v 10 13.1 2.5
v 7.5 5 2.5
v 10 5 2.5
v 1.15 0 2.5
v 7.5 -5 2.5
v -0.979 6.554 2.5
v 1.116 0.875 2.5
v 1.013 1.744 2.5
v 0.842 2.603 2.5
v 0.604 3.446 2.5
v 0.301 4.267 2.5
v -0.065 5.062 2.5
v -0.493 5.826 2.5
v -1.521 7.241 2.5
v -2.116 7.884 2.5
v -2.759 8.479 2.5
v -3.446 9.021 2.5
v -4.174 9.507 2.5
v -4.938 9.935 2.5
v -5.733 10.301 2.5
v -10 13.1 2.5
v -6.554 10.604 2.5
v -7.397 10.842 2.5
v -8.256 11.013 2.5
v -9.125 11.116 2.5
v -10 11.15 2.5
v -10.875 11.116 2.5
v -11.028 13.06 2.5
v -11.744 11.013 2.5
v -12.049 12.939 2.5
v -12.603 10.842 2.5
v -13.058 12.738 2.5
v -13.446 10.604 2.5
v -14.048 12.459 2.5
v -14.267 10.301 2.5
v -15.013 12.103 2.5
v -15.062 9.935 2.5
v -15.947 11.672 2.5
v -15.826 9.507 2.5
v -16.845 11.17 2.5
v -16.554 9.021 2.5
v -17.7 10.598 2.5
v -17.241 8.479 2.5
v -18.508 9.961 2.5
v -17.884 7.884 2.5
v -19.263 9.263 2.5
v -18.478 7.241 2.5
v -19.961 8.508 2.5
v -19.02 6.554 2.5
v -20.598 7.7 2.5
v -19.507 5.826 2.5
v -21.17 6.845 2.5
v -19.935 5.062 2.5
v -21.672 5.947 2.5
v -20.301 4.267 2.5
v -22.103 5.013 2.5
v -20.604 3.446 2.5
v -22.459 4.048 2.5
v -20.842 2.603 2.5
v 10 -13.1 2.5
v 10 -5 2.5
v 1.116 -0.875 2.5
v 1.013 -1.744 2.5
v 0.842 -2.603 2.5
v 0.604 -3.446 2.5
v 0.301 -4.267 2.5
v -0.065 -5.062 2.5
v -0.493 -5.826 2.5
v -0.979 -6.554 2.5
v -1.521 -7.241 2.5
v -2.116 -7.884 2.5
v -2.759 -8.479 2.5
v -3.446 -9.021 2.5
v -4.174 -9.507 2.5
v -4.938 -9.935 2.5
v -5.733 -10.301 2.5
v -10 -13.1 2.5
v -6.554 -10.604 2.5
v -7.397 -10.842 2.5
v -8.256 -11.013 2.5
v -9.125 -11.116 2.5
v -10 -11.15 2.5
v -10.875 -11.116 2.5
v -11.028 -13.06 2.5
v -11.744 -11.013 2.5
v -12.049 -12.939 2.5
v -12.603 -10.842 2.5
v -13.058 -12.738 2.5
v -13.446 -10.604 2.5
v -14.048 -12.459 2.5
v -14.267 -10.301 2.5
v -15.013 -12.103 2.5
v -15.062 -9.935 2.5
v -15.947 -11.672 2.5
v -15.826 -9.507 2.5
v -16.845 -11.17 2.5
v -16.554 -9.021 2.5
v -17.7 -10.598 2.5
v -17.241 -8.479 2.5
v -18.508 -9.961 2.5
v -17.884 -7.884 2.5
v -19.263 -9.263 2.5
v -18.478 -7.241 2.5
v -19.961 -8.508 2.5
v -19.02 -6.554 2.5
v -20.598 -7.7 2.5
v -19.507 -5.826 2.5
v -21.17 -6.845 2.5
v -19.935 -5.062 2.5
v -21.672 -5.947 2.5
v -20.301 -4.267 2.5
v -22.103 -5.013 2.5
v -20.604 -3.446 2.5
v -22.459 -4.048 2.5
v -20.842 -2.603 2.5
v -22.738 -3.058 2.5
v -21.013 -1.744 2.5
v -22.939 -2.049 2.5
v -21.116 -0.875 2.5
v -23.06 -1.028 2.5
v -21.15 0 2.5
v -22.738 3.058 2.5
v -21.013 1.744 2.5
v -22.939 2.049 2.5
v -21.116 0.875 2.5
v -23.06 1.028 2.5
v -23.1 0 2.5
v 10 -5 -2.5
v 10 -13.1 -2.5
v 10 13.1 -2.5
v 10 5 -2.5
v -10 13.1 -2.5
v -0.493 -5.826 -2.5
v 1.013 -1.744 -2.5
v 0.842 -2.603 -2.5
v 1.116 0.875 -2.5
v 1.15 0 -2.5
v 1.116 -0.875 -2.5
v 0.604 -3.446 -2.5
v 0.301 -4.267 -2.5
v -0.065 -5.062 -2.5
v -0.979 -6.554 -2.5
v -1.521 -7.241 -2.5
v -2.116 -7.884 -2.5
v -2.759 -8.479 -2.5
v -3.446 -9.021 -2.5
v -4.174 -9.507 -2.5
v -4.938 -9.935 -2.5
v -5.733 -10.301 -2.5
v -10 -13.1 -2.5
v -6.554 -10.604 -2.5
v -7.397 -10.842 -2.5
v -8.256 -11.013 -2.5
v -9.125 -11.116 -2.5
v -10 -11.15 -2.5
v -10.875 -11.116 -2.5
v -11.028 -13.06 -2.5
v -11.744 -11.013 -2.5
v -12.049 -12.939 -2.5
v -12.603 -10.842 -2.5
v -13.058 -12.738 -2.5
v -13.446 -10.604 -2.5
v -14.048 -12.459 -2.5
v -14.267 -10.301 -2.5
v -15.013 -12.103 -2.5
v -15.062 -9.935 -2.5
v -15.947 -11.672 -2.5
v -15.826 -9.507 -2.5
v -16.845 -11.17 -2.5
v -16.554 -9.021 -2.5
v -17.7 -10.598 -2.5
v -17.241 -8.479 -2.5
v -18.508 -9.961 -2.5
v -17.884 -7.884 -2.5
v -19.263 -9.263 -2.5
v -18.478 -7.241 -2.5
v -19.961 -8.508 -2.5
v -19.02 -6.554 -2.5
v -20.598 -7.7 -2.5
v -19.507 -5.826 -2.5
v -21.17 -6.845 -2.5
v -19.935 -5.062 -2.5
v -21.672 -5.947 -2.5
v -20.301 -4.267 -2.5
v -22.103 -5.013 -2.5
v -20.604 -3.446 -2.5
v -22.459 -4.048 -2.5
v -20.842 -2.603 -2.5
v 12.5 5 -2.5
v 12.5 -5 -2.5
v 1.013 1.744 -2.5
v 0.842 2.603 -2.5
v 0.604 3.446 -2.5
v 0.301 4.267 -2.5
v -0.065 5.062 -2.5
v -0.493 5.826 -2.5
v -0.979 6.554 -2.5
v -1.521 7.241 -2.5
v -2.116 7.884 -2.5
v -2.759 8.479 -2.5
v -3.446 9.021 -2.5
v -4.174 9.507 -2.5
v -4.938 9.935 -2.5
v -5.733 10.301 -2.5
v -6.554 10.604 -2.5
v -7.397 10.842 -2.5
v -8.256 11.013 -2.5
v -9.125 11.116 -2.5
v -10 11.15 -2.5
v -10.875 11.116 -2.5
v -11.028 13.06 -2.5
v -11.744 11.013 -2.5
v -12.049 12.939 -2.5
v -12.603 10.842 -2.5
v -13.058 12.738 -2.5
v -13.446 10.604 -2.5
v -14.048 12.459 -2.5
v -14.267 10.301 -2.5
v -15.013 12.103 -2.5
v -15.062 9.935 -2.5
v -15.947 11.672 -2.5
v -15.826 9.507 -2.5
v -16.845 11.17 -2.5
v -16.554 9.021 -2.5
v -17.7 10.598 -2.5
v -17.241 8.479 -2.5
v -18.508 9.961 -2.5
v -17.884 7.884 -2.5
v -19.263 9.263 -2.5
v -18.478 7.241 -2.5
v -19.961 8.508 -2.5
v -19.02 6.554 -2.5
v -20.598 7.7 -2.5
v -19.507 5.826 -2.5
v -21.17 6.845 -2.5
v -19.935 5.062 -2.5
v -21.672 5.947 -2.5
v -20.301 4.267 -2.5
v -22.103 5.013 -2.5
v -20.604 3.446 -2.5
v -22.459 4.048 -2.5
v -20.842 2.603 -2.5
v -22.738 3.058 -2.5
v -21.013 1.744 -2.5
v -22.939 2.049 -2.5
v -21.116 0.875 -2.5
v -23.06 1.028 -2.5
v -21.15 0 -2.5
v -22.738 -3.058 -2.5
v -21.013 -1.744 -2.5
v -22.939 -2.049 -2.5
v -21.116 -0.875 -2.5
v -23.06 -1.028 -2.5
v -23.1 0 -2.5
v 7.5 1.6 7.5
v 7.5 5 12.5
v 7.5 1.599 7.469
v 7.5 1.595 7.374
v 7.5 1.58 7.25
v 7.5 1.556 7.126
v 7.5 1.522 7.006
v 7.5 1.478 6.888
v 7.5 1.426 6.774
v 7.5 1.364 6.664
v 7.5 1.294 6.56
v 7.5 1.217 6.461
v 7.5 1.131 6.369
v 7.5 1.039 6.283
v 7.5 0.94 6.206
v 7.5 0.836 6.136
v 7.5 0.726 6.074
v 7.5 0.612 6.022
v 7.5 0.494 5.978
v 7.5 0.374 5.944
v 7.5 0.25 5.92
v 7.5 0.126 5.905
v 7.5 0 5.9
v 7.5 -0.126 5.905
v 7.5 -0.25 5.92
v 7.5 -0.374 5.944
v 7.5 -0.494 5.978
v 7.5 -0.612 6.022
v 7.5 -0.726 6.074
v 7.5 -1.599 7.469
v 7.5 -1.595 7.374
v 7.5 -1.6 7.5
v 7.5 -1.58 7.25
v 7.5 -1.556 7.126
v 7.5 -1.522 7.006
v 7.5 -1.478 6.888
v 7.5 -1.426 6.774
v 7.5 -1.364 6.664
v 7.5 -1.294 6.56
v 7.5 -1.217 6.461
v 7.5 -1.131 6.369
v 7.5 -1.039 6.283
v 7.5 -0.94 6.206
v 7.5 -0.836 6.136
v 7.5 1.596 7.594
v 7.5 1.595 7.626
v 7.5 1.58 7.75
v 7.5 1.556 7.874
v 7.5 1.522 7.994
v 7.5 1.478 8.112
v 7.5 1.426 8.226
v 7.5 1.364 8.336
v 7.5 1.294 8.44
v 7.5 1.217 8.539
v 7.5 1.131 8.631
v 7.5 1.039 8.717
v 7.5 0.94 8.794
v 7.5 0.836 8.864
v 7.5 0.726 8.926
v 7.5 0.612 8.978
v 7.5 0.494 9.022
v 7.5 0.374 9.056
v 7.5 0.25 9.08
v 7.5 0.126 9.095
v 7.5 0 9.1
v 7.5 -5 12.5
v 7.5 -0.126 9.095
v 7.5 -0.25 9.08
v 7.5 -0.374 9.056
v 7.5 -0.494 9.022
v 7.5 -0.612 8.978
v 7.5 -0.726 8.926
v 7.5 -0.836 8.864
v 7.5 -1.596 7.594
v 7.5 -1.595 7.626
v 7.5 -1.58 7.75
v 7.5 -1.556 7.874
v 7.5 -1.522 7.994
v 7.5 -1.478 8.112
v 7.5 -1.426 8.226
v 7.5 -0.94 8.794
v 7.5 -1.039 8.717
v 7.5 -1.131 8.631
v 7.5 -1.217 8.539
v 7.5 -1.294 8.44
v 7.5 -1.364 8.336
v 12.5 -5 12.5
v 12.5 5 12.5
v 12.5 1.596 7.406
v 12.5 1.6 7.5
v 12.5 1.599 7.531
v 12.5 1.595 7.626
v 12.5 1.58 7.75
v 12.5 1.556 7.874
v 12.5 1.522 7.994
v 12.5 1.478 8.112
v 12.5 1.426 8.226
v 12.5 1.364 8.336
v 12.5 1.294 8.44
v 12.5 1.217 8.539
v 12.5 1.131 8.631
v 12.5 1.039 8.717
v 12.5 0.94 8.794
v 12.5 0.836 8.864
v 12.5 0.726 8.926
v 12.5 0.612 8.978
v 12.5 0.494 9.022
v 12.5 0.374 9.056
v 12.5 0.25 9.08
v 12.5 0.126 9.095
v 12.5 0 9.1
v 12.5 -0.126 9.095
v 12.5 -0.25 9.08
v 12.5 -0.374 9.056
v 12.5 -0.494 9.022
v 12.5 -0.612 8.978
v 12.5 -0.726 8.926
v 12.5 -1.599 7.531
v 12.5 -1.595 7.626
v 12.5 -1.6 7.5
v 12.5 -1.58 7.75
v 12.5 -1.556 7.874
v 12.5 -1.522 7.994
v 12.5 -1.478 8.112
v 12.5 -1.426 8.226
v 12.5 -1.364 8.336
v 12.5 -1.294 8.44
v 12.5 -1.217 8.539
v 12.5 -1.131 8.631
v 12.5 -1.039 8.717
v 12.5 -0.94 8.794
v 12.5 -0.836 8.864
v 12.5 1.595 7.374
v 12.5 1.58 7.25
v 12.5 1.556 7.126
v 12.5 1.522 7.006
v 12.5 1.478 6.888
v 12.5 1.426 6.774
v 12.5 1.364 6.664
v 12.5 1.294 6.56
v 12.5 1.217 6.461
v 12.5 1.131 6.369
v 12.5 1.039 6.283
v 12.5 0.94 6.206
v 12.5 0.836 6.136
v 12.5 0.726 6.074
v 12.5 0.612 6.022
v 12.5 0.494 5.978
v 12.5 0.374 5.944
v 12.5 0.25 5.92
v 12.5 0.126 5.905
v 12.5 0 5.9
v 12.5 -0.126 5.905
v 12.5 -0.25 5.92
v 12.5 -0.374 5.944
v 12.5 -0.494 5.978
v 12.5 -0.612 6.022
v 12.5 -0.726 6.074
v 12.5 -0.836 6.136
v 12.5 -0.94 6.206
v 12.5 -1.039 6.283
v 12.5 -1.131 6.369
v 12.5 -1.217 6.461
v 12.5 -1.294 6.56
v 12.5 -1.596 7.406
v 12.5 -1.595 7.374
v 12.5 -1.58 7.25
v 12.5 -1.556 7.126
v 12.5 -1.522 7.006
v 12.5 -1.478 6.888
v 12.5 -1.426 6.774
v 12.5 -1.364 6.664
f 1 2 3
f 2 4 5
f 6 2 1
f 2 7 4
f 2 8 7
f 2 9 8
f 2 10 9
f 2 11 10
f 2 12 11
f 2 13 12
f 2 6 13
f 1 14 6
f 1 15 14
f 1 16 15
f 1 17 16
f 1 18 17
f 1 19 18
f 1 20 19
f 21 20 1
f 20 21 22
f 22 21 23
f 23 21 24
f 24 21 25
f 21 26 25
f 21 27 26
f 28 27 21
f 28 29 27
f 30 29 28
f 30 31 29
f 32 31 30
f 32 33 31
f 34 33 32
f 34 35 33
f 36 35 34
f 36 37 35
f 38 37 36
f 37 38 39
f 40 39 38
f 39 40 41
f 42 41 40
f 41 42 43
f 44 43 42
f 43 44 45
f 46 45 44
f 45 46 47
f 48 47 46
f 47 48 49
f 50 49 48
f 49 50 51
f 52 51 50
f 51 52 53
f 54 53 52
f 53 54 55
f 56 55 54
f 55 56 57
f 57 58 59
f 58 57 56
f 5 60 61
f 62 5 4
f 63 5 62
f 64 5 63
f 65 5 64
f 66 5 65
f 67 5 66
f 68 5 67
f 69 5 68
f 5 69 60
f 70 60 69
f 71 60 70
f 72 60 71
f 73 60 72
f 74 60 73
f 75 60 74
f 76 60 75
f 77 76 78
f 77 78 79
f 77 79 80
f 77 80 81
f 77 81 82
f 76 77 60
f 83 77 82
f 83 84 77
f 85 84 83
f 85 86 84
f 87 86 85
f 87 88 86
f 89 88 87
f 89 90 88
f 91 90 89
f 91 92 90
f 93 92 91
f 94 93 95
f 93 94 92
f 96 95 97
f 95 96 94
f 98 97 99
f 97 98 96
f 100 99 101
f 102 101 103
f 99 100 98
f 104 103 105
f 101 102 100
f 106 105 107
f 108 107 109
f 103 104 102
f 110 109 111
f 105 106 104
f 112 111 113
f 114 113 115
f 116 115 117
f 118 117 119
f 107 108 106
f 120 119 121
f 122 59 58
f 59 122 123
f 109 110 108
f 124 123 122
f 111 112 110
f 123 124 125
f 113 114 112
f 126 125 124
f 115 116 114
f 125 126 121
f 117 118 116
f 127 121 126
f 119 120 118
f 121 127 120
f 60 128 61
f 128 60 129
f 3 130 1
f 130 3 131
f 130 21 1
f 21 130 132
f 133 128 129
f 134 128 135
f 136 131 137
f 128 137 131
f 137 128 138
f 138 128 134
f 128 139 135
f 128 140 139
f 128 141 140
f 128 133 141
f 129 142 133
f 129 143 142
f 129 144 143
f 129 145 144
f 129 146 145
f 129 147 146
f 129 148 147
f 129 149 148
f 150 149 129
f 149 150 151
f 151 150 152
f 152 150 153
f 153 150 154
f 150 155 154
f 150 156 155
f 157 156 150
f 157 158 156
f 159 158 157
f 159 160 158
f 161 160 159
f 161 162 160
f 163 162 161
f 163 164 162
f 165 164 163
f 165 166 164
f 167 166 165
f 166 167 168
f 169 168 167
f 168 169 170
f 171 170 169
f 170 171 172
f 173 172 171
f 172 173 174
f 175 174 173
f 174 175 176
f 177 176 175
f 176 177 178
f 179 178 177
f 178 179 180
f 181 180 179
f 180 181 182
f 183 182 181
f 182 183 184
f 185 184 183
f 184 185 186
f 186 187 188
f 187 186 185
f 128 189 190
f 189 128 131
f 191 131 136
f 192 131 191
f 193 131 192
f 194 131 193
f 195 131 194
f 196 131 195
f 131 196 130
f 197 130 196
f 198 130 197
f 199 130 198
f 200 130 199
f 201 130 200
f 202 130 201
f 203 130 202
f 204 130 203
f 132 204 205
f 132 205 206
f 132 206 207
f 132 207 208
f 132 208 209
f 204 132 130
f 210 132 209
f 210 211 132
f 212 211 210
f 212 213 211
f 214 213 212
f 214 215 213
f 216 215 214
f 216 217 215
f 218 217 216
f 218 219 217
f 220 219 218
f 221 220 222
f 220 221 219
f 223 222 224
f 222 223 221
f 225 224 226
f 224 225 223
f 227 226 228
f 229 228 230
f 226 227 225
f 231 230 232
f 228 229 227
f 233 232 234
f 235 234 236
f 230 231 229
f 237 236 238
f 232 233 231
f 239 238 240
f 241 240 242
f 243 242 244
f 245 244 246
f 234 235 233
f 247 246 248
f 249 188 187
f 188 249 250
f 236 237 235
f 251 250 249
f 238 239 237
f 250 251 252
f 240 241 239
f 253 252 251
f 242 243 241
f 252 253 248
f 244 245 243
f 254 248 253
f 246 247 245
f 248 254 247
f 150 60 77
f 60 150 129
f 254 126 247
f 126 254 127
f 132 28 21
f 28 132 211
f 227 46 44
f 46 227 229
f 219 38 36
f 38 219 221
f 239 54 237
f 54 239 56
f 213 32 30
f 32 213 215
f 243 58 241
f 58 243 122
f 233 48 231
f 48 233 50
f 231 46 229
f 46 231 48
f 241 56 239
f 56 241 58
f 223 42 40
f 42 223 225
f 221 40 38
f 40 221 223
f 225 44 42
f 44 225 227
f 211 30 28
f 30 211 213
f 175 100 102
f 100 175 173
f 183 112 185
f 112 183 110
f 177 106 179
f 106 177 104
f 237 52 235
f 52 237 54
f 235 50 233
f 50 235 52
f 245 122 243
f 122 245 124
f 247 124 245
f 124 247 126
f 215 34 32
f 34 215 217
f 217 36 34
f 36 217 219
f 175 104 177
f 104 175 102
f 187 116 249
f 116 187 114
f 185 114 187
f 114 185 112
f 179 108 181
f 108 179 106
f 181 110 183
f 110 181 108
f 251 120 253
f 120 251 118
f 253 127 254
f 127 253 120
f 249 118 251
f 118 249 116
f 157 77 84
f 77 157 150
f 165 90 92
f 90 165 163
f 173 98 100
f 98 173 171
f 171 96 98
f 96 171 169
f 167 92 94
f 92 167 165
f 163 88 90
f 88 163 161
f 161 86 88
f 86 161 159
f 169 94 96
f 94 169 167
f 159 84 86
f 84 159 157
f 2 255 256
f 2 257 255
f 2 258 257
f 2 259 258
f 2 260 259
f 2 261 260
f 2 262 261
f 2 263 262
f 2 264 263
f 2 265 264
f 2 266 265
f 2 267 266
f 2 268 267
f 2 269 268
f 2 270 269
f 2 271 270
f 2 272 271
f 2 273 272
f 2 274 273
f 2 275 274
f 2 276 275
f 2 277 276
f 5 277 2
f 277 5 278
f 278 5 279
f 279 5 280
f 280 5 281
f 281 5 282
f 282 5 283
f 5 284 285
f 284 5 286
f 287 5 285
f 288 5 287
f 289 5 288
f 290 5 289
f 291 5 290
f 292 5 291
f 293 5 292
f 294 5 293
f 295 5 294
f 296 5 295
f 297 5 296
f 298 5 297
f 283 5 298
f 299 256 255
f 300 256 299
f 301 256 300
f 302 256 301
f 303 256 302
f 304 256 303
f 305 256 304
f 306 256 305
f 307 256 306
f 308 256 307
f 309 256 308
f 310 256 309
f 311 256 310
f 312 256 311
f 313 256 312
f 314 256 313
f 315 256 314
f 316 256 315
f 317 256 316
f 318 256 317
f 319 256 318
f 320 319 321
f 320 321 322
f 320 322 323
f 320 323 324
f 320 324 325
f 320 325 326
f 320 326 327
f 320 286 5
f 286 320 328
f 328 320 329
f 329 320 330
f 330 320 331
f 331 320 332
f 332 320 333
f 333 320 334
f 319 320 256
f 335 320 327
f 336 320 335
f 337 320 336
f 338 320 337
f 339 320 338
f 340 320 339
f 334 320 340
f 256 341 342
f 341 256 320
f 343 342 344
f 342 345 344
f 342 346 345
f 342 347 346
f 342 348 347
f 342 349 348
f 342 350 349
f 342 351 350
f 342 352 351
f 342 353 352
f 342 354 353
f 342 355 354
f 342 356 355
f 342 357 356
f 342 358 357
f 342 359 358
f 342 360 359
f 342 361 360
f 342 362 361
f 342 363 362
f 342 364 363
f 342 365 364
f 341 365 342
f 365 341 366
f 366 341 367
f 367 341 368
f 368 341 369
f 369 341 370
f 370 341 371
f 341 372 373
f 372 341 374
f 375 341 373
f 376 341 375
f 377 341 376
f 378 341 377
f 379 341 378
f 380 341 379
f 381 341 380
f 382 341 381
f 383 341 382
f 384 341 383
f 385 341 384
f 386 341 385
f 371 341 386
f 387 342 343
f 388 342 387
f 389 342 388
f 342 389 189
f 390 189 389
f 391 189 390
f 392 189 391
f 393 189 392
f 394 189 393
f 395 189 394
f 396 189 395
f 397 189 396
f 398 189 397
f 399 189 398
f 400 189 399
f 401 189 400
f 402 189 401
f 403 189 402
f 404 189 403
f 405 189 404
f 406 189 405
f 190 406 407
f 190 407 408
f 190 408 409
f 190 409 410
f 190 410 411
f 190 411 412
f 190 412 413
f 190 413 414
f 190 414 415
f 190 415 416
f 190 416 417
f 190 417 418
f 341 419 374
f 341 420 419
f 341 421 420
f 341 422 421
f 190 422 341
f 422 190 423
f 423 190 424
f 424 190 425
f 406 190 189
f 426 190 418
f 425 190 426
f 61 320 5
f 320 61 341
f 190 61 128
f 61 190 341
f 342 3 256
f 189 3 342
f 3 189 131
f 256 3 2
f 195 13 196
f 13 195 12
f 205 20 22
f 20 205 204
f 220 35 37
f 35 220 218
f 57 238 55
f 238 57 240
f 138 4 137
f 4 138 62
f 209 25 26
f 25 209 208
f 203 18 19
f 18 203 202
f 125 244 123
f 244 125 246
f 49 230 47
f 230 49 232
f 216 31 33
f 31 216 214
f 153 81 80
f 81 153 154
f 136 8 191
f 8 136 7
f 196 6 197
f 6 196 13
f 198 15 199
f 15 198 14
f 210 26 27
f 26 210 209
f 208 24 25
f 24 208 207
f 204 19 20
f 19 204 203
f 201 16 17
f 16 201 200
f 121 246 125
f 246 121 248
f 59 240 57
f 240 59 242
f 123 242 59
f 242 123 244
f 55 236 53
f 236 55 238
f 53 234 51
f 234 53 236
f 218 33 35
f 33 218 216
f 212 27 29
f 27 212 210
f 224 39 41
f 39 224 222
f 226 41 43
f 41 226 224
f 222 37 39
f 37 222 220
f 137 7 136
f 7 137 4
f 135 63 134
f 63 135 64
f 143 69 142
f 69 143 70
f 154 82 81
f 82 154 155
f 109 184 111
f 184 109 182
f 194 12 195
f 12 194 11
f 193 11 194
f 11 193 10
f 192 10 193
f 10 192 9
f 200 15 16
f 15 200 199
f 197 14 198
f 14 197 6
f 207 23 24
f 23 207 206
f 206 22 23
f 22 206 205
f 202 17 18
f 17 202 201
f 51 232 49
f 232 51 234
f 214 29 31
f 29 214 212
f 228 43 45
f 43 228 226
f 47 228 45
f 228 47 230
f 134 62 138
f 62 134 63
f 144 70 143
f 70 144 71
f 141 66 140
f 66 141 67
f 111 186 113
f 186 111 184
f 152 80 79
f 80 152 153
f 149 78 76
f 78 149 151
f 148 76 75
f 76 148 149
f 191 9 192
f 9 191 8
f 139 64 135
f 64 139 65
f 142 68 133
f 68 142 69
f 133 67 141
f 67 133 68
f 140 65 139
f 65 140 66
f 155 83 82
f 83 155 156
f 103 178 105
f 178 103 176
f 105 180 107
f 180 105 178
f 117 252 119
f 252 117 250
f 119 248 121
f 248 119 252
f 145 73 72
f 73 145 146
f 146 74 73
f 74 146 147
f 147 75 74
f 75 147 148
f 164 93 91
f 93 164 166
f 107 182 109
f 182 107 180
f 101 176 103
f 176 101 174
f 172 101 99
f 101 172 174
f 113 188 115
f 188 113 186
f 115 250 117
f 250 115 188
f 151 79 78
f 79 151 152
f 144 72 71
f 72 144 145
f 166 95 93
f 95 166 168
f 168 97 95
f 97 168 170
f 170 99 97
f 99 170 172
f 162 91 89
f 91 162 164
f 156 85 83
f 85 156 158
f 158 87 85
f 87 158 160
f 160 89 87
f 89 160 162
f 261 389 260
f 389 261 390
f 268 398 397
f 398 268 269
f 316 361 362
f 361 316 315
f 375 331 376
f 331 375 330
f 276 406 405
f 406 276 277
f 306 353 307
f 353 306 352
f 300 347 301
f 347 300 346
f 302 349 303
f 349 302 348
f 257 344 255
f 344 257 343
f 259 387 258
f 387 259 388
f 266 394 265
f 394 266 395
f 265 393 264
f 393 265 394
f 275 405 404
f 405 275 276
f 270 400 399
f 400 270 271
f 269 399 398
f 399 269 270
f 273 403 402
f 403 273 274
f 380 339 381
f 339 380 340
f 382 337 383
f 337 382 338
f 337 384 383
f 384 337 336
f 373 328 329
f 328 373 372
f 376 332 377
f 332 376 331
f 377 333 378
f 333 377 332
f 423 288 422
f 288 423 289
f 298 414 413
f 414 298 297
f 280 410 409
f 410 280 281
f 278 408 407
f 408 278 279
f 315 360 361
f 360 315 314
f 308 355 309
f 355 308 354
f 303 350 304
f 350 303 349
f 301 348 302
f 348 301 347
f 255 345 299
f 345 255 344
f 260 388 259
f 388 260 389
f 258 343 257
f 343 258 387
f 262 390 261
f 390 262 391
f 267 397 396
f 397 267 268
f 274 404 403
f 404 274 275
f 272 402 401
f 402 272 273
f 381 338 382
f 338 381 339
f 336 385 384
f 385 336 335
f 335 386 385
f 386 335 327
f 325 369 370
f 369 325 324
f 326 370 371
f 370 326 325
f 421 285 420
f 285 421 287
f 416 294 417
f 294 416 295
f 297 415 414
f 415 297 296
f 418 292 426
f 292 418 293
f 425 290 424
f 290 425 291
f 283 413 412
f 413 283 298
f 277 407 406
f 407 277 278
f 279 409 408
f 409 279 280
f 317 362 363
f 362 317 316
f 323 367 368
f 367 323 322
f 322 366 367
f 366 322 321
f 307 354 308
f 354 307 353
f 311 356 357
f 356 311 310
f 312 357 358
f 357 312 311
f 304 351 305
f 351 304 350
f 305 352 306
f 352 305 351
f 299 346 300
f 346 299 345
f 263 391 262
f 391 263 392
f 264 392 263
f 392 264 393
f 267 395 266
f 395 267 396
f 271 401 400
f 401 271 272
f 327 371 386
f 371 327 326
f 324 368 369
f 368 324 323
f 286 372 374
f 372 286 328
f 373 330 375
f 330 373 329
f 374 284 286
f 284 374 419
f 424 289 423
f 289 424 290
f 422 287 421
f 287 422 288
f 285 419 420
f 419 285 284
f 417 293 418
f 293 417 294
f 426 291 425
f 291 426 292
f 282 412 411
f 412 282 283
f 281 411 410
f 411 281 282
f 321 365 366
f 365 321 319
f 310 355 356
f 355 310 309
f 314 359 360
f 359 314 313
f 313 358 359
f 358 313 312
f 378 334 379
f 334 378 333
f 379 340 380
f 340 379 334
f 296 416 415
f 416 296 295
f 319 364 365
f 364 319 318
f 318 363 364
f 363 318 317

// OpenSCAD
difference() {

union() {

cube([20,26.20,5], center=true);
    translate([-10,0,0]) cylinder(r=13.10,h=5, center=true, $fn=80);
    translate([10,0,5]) cube([5,10,15], center=true);
    
}
translate([-10,0,0]) #cylinder(r=11.15, h=10, center=true,$fn=80);
translate([10,0,7.5]) rotate([0,90,0]) cylinder(r=1.6, h=10, center=true, $fn=80);

}
